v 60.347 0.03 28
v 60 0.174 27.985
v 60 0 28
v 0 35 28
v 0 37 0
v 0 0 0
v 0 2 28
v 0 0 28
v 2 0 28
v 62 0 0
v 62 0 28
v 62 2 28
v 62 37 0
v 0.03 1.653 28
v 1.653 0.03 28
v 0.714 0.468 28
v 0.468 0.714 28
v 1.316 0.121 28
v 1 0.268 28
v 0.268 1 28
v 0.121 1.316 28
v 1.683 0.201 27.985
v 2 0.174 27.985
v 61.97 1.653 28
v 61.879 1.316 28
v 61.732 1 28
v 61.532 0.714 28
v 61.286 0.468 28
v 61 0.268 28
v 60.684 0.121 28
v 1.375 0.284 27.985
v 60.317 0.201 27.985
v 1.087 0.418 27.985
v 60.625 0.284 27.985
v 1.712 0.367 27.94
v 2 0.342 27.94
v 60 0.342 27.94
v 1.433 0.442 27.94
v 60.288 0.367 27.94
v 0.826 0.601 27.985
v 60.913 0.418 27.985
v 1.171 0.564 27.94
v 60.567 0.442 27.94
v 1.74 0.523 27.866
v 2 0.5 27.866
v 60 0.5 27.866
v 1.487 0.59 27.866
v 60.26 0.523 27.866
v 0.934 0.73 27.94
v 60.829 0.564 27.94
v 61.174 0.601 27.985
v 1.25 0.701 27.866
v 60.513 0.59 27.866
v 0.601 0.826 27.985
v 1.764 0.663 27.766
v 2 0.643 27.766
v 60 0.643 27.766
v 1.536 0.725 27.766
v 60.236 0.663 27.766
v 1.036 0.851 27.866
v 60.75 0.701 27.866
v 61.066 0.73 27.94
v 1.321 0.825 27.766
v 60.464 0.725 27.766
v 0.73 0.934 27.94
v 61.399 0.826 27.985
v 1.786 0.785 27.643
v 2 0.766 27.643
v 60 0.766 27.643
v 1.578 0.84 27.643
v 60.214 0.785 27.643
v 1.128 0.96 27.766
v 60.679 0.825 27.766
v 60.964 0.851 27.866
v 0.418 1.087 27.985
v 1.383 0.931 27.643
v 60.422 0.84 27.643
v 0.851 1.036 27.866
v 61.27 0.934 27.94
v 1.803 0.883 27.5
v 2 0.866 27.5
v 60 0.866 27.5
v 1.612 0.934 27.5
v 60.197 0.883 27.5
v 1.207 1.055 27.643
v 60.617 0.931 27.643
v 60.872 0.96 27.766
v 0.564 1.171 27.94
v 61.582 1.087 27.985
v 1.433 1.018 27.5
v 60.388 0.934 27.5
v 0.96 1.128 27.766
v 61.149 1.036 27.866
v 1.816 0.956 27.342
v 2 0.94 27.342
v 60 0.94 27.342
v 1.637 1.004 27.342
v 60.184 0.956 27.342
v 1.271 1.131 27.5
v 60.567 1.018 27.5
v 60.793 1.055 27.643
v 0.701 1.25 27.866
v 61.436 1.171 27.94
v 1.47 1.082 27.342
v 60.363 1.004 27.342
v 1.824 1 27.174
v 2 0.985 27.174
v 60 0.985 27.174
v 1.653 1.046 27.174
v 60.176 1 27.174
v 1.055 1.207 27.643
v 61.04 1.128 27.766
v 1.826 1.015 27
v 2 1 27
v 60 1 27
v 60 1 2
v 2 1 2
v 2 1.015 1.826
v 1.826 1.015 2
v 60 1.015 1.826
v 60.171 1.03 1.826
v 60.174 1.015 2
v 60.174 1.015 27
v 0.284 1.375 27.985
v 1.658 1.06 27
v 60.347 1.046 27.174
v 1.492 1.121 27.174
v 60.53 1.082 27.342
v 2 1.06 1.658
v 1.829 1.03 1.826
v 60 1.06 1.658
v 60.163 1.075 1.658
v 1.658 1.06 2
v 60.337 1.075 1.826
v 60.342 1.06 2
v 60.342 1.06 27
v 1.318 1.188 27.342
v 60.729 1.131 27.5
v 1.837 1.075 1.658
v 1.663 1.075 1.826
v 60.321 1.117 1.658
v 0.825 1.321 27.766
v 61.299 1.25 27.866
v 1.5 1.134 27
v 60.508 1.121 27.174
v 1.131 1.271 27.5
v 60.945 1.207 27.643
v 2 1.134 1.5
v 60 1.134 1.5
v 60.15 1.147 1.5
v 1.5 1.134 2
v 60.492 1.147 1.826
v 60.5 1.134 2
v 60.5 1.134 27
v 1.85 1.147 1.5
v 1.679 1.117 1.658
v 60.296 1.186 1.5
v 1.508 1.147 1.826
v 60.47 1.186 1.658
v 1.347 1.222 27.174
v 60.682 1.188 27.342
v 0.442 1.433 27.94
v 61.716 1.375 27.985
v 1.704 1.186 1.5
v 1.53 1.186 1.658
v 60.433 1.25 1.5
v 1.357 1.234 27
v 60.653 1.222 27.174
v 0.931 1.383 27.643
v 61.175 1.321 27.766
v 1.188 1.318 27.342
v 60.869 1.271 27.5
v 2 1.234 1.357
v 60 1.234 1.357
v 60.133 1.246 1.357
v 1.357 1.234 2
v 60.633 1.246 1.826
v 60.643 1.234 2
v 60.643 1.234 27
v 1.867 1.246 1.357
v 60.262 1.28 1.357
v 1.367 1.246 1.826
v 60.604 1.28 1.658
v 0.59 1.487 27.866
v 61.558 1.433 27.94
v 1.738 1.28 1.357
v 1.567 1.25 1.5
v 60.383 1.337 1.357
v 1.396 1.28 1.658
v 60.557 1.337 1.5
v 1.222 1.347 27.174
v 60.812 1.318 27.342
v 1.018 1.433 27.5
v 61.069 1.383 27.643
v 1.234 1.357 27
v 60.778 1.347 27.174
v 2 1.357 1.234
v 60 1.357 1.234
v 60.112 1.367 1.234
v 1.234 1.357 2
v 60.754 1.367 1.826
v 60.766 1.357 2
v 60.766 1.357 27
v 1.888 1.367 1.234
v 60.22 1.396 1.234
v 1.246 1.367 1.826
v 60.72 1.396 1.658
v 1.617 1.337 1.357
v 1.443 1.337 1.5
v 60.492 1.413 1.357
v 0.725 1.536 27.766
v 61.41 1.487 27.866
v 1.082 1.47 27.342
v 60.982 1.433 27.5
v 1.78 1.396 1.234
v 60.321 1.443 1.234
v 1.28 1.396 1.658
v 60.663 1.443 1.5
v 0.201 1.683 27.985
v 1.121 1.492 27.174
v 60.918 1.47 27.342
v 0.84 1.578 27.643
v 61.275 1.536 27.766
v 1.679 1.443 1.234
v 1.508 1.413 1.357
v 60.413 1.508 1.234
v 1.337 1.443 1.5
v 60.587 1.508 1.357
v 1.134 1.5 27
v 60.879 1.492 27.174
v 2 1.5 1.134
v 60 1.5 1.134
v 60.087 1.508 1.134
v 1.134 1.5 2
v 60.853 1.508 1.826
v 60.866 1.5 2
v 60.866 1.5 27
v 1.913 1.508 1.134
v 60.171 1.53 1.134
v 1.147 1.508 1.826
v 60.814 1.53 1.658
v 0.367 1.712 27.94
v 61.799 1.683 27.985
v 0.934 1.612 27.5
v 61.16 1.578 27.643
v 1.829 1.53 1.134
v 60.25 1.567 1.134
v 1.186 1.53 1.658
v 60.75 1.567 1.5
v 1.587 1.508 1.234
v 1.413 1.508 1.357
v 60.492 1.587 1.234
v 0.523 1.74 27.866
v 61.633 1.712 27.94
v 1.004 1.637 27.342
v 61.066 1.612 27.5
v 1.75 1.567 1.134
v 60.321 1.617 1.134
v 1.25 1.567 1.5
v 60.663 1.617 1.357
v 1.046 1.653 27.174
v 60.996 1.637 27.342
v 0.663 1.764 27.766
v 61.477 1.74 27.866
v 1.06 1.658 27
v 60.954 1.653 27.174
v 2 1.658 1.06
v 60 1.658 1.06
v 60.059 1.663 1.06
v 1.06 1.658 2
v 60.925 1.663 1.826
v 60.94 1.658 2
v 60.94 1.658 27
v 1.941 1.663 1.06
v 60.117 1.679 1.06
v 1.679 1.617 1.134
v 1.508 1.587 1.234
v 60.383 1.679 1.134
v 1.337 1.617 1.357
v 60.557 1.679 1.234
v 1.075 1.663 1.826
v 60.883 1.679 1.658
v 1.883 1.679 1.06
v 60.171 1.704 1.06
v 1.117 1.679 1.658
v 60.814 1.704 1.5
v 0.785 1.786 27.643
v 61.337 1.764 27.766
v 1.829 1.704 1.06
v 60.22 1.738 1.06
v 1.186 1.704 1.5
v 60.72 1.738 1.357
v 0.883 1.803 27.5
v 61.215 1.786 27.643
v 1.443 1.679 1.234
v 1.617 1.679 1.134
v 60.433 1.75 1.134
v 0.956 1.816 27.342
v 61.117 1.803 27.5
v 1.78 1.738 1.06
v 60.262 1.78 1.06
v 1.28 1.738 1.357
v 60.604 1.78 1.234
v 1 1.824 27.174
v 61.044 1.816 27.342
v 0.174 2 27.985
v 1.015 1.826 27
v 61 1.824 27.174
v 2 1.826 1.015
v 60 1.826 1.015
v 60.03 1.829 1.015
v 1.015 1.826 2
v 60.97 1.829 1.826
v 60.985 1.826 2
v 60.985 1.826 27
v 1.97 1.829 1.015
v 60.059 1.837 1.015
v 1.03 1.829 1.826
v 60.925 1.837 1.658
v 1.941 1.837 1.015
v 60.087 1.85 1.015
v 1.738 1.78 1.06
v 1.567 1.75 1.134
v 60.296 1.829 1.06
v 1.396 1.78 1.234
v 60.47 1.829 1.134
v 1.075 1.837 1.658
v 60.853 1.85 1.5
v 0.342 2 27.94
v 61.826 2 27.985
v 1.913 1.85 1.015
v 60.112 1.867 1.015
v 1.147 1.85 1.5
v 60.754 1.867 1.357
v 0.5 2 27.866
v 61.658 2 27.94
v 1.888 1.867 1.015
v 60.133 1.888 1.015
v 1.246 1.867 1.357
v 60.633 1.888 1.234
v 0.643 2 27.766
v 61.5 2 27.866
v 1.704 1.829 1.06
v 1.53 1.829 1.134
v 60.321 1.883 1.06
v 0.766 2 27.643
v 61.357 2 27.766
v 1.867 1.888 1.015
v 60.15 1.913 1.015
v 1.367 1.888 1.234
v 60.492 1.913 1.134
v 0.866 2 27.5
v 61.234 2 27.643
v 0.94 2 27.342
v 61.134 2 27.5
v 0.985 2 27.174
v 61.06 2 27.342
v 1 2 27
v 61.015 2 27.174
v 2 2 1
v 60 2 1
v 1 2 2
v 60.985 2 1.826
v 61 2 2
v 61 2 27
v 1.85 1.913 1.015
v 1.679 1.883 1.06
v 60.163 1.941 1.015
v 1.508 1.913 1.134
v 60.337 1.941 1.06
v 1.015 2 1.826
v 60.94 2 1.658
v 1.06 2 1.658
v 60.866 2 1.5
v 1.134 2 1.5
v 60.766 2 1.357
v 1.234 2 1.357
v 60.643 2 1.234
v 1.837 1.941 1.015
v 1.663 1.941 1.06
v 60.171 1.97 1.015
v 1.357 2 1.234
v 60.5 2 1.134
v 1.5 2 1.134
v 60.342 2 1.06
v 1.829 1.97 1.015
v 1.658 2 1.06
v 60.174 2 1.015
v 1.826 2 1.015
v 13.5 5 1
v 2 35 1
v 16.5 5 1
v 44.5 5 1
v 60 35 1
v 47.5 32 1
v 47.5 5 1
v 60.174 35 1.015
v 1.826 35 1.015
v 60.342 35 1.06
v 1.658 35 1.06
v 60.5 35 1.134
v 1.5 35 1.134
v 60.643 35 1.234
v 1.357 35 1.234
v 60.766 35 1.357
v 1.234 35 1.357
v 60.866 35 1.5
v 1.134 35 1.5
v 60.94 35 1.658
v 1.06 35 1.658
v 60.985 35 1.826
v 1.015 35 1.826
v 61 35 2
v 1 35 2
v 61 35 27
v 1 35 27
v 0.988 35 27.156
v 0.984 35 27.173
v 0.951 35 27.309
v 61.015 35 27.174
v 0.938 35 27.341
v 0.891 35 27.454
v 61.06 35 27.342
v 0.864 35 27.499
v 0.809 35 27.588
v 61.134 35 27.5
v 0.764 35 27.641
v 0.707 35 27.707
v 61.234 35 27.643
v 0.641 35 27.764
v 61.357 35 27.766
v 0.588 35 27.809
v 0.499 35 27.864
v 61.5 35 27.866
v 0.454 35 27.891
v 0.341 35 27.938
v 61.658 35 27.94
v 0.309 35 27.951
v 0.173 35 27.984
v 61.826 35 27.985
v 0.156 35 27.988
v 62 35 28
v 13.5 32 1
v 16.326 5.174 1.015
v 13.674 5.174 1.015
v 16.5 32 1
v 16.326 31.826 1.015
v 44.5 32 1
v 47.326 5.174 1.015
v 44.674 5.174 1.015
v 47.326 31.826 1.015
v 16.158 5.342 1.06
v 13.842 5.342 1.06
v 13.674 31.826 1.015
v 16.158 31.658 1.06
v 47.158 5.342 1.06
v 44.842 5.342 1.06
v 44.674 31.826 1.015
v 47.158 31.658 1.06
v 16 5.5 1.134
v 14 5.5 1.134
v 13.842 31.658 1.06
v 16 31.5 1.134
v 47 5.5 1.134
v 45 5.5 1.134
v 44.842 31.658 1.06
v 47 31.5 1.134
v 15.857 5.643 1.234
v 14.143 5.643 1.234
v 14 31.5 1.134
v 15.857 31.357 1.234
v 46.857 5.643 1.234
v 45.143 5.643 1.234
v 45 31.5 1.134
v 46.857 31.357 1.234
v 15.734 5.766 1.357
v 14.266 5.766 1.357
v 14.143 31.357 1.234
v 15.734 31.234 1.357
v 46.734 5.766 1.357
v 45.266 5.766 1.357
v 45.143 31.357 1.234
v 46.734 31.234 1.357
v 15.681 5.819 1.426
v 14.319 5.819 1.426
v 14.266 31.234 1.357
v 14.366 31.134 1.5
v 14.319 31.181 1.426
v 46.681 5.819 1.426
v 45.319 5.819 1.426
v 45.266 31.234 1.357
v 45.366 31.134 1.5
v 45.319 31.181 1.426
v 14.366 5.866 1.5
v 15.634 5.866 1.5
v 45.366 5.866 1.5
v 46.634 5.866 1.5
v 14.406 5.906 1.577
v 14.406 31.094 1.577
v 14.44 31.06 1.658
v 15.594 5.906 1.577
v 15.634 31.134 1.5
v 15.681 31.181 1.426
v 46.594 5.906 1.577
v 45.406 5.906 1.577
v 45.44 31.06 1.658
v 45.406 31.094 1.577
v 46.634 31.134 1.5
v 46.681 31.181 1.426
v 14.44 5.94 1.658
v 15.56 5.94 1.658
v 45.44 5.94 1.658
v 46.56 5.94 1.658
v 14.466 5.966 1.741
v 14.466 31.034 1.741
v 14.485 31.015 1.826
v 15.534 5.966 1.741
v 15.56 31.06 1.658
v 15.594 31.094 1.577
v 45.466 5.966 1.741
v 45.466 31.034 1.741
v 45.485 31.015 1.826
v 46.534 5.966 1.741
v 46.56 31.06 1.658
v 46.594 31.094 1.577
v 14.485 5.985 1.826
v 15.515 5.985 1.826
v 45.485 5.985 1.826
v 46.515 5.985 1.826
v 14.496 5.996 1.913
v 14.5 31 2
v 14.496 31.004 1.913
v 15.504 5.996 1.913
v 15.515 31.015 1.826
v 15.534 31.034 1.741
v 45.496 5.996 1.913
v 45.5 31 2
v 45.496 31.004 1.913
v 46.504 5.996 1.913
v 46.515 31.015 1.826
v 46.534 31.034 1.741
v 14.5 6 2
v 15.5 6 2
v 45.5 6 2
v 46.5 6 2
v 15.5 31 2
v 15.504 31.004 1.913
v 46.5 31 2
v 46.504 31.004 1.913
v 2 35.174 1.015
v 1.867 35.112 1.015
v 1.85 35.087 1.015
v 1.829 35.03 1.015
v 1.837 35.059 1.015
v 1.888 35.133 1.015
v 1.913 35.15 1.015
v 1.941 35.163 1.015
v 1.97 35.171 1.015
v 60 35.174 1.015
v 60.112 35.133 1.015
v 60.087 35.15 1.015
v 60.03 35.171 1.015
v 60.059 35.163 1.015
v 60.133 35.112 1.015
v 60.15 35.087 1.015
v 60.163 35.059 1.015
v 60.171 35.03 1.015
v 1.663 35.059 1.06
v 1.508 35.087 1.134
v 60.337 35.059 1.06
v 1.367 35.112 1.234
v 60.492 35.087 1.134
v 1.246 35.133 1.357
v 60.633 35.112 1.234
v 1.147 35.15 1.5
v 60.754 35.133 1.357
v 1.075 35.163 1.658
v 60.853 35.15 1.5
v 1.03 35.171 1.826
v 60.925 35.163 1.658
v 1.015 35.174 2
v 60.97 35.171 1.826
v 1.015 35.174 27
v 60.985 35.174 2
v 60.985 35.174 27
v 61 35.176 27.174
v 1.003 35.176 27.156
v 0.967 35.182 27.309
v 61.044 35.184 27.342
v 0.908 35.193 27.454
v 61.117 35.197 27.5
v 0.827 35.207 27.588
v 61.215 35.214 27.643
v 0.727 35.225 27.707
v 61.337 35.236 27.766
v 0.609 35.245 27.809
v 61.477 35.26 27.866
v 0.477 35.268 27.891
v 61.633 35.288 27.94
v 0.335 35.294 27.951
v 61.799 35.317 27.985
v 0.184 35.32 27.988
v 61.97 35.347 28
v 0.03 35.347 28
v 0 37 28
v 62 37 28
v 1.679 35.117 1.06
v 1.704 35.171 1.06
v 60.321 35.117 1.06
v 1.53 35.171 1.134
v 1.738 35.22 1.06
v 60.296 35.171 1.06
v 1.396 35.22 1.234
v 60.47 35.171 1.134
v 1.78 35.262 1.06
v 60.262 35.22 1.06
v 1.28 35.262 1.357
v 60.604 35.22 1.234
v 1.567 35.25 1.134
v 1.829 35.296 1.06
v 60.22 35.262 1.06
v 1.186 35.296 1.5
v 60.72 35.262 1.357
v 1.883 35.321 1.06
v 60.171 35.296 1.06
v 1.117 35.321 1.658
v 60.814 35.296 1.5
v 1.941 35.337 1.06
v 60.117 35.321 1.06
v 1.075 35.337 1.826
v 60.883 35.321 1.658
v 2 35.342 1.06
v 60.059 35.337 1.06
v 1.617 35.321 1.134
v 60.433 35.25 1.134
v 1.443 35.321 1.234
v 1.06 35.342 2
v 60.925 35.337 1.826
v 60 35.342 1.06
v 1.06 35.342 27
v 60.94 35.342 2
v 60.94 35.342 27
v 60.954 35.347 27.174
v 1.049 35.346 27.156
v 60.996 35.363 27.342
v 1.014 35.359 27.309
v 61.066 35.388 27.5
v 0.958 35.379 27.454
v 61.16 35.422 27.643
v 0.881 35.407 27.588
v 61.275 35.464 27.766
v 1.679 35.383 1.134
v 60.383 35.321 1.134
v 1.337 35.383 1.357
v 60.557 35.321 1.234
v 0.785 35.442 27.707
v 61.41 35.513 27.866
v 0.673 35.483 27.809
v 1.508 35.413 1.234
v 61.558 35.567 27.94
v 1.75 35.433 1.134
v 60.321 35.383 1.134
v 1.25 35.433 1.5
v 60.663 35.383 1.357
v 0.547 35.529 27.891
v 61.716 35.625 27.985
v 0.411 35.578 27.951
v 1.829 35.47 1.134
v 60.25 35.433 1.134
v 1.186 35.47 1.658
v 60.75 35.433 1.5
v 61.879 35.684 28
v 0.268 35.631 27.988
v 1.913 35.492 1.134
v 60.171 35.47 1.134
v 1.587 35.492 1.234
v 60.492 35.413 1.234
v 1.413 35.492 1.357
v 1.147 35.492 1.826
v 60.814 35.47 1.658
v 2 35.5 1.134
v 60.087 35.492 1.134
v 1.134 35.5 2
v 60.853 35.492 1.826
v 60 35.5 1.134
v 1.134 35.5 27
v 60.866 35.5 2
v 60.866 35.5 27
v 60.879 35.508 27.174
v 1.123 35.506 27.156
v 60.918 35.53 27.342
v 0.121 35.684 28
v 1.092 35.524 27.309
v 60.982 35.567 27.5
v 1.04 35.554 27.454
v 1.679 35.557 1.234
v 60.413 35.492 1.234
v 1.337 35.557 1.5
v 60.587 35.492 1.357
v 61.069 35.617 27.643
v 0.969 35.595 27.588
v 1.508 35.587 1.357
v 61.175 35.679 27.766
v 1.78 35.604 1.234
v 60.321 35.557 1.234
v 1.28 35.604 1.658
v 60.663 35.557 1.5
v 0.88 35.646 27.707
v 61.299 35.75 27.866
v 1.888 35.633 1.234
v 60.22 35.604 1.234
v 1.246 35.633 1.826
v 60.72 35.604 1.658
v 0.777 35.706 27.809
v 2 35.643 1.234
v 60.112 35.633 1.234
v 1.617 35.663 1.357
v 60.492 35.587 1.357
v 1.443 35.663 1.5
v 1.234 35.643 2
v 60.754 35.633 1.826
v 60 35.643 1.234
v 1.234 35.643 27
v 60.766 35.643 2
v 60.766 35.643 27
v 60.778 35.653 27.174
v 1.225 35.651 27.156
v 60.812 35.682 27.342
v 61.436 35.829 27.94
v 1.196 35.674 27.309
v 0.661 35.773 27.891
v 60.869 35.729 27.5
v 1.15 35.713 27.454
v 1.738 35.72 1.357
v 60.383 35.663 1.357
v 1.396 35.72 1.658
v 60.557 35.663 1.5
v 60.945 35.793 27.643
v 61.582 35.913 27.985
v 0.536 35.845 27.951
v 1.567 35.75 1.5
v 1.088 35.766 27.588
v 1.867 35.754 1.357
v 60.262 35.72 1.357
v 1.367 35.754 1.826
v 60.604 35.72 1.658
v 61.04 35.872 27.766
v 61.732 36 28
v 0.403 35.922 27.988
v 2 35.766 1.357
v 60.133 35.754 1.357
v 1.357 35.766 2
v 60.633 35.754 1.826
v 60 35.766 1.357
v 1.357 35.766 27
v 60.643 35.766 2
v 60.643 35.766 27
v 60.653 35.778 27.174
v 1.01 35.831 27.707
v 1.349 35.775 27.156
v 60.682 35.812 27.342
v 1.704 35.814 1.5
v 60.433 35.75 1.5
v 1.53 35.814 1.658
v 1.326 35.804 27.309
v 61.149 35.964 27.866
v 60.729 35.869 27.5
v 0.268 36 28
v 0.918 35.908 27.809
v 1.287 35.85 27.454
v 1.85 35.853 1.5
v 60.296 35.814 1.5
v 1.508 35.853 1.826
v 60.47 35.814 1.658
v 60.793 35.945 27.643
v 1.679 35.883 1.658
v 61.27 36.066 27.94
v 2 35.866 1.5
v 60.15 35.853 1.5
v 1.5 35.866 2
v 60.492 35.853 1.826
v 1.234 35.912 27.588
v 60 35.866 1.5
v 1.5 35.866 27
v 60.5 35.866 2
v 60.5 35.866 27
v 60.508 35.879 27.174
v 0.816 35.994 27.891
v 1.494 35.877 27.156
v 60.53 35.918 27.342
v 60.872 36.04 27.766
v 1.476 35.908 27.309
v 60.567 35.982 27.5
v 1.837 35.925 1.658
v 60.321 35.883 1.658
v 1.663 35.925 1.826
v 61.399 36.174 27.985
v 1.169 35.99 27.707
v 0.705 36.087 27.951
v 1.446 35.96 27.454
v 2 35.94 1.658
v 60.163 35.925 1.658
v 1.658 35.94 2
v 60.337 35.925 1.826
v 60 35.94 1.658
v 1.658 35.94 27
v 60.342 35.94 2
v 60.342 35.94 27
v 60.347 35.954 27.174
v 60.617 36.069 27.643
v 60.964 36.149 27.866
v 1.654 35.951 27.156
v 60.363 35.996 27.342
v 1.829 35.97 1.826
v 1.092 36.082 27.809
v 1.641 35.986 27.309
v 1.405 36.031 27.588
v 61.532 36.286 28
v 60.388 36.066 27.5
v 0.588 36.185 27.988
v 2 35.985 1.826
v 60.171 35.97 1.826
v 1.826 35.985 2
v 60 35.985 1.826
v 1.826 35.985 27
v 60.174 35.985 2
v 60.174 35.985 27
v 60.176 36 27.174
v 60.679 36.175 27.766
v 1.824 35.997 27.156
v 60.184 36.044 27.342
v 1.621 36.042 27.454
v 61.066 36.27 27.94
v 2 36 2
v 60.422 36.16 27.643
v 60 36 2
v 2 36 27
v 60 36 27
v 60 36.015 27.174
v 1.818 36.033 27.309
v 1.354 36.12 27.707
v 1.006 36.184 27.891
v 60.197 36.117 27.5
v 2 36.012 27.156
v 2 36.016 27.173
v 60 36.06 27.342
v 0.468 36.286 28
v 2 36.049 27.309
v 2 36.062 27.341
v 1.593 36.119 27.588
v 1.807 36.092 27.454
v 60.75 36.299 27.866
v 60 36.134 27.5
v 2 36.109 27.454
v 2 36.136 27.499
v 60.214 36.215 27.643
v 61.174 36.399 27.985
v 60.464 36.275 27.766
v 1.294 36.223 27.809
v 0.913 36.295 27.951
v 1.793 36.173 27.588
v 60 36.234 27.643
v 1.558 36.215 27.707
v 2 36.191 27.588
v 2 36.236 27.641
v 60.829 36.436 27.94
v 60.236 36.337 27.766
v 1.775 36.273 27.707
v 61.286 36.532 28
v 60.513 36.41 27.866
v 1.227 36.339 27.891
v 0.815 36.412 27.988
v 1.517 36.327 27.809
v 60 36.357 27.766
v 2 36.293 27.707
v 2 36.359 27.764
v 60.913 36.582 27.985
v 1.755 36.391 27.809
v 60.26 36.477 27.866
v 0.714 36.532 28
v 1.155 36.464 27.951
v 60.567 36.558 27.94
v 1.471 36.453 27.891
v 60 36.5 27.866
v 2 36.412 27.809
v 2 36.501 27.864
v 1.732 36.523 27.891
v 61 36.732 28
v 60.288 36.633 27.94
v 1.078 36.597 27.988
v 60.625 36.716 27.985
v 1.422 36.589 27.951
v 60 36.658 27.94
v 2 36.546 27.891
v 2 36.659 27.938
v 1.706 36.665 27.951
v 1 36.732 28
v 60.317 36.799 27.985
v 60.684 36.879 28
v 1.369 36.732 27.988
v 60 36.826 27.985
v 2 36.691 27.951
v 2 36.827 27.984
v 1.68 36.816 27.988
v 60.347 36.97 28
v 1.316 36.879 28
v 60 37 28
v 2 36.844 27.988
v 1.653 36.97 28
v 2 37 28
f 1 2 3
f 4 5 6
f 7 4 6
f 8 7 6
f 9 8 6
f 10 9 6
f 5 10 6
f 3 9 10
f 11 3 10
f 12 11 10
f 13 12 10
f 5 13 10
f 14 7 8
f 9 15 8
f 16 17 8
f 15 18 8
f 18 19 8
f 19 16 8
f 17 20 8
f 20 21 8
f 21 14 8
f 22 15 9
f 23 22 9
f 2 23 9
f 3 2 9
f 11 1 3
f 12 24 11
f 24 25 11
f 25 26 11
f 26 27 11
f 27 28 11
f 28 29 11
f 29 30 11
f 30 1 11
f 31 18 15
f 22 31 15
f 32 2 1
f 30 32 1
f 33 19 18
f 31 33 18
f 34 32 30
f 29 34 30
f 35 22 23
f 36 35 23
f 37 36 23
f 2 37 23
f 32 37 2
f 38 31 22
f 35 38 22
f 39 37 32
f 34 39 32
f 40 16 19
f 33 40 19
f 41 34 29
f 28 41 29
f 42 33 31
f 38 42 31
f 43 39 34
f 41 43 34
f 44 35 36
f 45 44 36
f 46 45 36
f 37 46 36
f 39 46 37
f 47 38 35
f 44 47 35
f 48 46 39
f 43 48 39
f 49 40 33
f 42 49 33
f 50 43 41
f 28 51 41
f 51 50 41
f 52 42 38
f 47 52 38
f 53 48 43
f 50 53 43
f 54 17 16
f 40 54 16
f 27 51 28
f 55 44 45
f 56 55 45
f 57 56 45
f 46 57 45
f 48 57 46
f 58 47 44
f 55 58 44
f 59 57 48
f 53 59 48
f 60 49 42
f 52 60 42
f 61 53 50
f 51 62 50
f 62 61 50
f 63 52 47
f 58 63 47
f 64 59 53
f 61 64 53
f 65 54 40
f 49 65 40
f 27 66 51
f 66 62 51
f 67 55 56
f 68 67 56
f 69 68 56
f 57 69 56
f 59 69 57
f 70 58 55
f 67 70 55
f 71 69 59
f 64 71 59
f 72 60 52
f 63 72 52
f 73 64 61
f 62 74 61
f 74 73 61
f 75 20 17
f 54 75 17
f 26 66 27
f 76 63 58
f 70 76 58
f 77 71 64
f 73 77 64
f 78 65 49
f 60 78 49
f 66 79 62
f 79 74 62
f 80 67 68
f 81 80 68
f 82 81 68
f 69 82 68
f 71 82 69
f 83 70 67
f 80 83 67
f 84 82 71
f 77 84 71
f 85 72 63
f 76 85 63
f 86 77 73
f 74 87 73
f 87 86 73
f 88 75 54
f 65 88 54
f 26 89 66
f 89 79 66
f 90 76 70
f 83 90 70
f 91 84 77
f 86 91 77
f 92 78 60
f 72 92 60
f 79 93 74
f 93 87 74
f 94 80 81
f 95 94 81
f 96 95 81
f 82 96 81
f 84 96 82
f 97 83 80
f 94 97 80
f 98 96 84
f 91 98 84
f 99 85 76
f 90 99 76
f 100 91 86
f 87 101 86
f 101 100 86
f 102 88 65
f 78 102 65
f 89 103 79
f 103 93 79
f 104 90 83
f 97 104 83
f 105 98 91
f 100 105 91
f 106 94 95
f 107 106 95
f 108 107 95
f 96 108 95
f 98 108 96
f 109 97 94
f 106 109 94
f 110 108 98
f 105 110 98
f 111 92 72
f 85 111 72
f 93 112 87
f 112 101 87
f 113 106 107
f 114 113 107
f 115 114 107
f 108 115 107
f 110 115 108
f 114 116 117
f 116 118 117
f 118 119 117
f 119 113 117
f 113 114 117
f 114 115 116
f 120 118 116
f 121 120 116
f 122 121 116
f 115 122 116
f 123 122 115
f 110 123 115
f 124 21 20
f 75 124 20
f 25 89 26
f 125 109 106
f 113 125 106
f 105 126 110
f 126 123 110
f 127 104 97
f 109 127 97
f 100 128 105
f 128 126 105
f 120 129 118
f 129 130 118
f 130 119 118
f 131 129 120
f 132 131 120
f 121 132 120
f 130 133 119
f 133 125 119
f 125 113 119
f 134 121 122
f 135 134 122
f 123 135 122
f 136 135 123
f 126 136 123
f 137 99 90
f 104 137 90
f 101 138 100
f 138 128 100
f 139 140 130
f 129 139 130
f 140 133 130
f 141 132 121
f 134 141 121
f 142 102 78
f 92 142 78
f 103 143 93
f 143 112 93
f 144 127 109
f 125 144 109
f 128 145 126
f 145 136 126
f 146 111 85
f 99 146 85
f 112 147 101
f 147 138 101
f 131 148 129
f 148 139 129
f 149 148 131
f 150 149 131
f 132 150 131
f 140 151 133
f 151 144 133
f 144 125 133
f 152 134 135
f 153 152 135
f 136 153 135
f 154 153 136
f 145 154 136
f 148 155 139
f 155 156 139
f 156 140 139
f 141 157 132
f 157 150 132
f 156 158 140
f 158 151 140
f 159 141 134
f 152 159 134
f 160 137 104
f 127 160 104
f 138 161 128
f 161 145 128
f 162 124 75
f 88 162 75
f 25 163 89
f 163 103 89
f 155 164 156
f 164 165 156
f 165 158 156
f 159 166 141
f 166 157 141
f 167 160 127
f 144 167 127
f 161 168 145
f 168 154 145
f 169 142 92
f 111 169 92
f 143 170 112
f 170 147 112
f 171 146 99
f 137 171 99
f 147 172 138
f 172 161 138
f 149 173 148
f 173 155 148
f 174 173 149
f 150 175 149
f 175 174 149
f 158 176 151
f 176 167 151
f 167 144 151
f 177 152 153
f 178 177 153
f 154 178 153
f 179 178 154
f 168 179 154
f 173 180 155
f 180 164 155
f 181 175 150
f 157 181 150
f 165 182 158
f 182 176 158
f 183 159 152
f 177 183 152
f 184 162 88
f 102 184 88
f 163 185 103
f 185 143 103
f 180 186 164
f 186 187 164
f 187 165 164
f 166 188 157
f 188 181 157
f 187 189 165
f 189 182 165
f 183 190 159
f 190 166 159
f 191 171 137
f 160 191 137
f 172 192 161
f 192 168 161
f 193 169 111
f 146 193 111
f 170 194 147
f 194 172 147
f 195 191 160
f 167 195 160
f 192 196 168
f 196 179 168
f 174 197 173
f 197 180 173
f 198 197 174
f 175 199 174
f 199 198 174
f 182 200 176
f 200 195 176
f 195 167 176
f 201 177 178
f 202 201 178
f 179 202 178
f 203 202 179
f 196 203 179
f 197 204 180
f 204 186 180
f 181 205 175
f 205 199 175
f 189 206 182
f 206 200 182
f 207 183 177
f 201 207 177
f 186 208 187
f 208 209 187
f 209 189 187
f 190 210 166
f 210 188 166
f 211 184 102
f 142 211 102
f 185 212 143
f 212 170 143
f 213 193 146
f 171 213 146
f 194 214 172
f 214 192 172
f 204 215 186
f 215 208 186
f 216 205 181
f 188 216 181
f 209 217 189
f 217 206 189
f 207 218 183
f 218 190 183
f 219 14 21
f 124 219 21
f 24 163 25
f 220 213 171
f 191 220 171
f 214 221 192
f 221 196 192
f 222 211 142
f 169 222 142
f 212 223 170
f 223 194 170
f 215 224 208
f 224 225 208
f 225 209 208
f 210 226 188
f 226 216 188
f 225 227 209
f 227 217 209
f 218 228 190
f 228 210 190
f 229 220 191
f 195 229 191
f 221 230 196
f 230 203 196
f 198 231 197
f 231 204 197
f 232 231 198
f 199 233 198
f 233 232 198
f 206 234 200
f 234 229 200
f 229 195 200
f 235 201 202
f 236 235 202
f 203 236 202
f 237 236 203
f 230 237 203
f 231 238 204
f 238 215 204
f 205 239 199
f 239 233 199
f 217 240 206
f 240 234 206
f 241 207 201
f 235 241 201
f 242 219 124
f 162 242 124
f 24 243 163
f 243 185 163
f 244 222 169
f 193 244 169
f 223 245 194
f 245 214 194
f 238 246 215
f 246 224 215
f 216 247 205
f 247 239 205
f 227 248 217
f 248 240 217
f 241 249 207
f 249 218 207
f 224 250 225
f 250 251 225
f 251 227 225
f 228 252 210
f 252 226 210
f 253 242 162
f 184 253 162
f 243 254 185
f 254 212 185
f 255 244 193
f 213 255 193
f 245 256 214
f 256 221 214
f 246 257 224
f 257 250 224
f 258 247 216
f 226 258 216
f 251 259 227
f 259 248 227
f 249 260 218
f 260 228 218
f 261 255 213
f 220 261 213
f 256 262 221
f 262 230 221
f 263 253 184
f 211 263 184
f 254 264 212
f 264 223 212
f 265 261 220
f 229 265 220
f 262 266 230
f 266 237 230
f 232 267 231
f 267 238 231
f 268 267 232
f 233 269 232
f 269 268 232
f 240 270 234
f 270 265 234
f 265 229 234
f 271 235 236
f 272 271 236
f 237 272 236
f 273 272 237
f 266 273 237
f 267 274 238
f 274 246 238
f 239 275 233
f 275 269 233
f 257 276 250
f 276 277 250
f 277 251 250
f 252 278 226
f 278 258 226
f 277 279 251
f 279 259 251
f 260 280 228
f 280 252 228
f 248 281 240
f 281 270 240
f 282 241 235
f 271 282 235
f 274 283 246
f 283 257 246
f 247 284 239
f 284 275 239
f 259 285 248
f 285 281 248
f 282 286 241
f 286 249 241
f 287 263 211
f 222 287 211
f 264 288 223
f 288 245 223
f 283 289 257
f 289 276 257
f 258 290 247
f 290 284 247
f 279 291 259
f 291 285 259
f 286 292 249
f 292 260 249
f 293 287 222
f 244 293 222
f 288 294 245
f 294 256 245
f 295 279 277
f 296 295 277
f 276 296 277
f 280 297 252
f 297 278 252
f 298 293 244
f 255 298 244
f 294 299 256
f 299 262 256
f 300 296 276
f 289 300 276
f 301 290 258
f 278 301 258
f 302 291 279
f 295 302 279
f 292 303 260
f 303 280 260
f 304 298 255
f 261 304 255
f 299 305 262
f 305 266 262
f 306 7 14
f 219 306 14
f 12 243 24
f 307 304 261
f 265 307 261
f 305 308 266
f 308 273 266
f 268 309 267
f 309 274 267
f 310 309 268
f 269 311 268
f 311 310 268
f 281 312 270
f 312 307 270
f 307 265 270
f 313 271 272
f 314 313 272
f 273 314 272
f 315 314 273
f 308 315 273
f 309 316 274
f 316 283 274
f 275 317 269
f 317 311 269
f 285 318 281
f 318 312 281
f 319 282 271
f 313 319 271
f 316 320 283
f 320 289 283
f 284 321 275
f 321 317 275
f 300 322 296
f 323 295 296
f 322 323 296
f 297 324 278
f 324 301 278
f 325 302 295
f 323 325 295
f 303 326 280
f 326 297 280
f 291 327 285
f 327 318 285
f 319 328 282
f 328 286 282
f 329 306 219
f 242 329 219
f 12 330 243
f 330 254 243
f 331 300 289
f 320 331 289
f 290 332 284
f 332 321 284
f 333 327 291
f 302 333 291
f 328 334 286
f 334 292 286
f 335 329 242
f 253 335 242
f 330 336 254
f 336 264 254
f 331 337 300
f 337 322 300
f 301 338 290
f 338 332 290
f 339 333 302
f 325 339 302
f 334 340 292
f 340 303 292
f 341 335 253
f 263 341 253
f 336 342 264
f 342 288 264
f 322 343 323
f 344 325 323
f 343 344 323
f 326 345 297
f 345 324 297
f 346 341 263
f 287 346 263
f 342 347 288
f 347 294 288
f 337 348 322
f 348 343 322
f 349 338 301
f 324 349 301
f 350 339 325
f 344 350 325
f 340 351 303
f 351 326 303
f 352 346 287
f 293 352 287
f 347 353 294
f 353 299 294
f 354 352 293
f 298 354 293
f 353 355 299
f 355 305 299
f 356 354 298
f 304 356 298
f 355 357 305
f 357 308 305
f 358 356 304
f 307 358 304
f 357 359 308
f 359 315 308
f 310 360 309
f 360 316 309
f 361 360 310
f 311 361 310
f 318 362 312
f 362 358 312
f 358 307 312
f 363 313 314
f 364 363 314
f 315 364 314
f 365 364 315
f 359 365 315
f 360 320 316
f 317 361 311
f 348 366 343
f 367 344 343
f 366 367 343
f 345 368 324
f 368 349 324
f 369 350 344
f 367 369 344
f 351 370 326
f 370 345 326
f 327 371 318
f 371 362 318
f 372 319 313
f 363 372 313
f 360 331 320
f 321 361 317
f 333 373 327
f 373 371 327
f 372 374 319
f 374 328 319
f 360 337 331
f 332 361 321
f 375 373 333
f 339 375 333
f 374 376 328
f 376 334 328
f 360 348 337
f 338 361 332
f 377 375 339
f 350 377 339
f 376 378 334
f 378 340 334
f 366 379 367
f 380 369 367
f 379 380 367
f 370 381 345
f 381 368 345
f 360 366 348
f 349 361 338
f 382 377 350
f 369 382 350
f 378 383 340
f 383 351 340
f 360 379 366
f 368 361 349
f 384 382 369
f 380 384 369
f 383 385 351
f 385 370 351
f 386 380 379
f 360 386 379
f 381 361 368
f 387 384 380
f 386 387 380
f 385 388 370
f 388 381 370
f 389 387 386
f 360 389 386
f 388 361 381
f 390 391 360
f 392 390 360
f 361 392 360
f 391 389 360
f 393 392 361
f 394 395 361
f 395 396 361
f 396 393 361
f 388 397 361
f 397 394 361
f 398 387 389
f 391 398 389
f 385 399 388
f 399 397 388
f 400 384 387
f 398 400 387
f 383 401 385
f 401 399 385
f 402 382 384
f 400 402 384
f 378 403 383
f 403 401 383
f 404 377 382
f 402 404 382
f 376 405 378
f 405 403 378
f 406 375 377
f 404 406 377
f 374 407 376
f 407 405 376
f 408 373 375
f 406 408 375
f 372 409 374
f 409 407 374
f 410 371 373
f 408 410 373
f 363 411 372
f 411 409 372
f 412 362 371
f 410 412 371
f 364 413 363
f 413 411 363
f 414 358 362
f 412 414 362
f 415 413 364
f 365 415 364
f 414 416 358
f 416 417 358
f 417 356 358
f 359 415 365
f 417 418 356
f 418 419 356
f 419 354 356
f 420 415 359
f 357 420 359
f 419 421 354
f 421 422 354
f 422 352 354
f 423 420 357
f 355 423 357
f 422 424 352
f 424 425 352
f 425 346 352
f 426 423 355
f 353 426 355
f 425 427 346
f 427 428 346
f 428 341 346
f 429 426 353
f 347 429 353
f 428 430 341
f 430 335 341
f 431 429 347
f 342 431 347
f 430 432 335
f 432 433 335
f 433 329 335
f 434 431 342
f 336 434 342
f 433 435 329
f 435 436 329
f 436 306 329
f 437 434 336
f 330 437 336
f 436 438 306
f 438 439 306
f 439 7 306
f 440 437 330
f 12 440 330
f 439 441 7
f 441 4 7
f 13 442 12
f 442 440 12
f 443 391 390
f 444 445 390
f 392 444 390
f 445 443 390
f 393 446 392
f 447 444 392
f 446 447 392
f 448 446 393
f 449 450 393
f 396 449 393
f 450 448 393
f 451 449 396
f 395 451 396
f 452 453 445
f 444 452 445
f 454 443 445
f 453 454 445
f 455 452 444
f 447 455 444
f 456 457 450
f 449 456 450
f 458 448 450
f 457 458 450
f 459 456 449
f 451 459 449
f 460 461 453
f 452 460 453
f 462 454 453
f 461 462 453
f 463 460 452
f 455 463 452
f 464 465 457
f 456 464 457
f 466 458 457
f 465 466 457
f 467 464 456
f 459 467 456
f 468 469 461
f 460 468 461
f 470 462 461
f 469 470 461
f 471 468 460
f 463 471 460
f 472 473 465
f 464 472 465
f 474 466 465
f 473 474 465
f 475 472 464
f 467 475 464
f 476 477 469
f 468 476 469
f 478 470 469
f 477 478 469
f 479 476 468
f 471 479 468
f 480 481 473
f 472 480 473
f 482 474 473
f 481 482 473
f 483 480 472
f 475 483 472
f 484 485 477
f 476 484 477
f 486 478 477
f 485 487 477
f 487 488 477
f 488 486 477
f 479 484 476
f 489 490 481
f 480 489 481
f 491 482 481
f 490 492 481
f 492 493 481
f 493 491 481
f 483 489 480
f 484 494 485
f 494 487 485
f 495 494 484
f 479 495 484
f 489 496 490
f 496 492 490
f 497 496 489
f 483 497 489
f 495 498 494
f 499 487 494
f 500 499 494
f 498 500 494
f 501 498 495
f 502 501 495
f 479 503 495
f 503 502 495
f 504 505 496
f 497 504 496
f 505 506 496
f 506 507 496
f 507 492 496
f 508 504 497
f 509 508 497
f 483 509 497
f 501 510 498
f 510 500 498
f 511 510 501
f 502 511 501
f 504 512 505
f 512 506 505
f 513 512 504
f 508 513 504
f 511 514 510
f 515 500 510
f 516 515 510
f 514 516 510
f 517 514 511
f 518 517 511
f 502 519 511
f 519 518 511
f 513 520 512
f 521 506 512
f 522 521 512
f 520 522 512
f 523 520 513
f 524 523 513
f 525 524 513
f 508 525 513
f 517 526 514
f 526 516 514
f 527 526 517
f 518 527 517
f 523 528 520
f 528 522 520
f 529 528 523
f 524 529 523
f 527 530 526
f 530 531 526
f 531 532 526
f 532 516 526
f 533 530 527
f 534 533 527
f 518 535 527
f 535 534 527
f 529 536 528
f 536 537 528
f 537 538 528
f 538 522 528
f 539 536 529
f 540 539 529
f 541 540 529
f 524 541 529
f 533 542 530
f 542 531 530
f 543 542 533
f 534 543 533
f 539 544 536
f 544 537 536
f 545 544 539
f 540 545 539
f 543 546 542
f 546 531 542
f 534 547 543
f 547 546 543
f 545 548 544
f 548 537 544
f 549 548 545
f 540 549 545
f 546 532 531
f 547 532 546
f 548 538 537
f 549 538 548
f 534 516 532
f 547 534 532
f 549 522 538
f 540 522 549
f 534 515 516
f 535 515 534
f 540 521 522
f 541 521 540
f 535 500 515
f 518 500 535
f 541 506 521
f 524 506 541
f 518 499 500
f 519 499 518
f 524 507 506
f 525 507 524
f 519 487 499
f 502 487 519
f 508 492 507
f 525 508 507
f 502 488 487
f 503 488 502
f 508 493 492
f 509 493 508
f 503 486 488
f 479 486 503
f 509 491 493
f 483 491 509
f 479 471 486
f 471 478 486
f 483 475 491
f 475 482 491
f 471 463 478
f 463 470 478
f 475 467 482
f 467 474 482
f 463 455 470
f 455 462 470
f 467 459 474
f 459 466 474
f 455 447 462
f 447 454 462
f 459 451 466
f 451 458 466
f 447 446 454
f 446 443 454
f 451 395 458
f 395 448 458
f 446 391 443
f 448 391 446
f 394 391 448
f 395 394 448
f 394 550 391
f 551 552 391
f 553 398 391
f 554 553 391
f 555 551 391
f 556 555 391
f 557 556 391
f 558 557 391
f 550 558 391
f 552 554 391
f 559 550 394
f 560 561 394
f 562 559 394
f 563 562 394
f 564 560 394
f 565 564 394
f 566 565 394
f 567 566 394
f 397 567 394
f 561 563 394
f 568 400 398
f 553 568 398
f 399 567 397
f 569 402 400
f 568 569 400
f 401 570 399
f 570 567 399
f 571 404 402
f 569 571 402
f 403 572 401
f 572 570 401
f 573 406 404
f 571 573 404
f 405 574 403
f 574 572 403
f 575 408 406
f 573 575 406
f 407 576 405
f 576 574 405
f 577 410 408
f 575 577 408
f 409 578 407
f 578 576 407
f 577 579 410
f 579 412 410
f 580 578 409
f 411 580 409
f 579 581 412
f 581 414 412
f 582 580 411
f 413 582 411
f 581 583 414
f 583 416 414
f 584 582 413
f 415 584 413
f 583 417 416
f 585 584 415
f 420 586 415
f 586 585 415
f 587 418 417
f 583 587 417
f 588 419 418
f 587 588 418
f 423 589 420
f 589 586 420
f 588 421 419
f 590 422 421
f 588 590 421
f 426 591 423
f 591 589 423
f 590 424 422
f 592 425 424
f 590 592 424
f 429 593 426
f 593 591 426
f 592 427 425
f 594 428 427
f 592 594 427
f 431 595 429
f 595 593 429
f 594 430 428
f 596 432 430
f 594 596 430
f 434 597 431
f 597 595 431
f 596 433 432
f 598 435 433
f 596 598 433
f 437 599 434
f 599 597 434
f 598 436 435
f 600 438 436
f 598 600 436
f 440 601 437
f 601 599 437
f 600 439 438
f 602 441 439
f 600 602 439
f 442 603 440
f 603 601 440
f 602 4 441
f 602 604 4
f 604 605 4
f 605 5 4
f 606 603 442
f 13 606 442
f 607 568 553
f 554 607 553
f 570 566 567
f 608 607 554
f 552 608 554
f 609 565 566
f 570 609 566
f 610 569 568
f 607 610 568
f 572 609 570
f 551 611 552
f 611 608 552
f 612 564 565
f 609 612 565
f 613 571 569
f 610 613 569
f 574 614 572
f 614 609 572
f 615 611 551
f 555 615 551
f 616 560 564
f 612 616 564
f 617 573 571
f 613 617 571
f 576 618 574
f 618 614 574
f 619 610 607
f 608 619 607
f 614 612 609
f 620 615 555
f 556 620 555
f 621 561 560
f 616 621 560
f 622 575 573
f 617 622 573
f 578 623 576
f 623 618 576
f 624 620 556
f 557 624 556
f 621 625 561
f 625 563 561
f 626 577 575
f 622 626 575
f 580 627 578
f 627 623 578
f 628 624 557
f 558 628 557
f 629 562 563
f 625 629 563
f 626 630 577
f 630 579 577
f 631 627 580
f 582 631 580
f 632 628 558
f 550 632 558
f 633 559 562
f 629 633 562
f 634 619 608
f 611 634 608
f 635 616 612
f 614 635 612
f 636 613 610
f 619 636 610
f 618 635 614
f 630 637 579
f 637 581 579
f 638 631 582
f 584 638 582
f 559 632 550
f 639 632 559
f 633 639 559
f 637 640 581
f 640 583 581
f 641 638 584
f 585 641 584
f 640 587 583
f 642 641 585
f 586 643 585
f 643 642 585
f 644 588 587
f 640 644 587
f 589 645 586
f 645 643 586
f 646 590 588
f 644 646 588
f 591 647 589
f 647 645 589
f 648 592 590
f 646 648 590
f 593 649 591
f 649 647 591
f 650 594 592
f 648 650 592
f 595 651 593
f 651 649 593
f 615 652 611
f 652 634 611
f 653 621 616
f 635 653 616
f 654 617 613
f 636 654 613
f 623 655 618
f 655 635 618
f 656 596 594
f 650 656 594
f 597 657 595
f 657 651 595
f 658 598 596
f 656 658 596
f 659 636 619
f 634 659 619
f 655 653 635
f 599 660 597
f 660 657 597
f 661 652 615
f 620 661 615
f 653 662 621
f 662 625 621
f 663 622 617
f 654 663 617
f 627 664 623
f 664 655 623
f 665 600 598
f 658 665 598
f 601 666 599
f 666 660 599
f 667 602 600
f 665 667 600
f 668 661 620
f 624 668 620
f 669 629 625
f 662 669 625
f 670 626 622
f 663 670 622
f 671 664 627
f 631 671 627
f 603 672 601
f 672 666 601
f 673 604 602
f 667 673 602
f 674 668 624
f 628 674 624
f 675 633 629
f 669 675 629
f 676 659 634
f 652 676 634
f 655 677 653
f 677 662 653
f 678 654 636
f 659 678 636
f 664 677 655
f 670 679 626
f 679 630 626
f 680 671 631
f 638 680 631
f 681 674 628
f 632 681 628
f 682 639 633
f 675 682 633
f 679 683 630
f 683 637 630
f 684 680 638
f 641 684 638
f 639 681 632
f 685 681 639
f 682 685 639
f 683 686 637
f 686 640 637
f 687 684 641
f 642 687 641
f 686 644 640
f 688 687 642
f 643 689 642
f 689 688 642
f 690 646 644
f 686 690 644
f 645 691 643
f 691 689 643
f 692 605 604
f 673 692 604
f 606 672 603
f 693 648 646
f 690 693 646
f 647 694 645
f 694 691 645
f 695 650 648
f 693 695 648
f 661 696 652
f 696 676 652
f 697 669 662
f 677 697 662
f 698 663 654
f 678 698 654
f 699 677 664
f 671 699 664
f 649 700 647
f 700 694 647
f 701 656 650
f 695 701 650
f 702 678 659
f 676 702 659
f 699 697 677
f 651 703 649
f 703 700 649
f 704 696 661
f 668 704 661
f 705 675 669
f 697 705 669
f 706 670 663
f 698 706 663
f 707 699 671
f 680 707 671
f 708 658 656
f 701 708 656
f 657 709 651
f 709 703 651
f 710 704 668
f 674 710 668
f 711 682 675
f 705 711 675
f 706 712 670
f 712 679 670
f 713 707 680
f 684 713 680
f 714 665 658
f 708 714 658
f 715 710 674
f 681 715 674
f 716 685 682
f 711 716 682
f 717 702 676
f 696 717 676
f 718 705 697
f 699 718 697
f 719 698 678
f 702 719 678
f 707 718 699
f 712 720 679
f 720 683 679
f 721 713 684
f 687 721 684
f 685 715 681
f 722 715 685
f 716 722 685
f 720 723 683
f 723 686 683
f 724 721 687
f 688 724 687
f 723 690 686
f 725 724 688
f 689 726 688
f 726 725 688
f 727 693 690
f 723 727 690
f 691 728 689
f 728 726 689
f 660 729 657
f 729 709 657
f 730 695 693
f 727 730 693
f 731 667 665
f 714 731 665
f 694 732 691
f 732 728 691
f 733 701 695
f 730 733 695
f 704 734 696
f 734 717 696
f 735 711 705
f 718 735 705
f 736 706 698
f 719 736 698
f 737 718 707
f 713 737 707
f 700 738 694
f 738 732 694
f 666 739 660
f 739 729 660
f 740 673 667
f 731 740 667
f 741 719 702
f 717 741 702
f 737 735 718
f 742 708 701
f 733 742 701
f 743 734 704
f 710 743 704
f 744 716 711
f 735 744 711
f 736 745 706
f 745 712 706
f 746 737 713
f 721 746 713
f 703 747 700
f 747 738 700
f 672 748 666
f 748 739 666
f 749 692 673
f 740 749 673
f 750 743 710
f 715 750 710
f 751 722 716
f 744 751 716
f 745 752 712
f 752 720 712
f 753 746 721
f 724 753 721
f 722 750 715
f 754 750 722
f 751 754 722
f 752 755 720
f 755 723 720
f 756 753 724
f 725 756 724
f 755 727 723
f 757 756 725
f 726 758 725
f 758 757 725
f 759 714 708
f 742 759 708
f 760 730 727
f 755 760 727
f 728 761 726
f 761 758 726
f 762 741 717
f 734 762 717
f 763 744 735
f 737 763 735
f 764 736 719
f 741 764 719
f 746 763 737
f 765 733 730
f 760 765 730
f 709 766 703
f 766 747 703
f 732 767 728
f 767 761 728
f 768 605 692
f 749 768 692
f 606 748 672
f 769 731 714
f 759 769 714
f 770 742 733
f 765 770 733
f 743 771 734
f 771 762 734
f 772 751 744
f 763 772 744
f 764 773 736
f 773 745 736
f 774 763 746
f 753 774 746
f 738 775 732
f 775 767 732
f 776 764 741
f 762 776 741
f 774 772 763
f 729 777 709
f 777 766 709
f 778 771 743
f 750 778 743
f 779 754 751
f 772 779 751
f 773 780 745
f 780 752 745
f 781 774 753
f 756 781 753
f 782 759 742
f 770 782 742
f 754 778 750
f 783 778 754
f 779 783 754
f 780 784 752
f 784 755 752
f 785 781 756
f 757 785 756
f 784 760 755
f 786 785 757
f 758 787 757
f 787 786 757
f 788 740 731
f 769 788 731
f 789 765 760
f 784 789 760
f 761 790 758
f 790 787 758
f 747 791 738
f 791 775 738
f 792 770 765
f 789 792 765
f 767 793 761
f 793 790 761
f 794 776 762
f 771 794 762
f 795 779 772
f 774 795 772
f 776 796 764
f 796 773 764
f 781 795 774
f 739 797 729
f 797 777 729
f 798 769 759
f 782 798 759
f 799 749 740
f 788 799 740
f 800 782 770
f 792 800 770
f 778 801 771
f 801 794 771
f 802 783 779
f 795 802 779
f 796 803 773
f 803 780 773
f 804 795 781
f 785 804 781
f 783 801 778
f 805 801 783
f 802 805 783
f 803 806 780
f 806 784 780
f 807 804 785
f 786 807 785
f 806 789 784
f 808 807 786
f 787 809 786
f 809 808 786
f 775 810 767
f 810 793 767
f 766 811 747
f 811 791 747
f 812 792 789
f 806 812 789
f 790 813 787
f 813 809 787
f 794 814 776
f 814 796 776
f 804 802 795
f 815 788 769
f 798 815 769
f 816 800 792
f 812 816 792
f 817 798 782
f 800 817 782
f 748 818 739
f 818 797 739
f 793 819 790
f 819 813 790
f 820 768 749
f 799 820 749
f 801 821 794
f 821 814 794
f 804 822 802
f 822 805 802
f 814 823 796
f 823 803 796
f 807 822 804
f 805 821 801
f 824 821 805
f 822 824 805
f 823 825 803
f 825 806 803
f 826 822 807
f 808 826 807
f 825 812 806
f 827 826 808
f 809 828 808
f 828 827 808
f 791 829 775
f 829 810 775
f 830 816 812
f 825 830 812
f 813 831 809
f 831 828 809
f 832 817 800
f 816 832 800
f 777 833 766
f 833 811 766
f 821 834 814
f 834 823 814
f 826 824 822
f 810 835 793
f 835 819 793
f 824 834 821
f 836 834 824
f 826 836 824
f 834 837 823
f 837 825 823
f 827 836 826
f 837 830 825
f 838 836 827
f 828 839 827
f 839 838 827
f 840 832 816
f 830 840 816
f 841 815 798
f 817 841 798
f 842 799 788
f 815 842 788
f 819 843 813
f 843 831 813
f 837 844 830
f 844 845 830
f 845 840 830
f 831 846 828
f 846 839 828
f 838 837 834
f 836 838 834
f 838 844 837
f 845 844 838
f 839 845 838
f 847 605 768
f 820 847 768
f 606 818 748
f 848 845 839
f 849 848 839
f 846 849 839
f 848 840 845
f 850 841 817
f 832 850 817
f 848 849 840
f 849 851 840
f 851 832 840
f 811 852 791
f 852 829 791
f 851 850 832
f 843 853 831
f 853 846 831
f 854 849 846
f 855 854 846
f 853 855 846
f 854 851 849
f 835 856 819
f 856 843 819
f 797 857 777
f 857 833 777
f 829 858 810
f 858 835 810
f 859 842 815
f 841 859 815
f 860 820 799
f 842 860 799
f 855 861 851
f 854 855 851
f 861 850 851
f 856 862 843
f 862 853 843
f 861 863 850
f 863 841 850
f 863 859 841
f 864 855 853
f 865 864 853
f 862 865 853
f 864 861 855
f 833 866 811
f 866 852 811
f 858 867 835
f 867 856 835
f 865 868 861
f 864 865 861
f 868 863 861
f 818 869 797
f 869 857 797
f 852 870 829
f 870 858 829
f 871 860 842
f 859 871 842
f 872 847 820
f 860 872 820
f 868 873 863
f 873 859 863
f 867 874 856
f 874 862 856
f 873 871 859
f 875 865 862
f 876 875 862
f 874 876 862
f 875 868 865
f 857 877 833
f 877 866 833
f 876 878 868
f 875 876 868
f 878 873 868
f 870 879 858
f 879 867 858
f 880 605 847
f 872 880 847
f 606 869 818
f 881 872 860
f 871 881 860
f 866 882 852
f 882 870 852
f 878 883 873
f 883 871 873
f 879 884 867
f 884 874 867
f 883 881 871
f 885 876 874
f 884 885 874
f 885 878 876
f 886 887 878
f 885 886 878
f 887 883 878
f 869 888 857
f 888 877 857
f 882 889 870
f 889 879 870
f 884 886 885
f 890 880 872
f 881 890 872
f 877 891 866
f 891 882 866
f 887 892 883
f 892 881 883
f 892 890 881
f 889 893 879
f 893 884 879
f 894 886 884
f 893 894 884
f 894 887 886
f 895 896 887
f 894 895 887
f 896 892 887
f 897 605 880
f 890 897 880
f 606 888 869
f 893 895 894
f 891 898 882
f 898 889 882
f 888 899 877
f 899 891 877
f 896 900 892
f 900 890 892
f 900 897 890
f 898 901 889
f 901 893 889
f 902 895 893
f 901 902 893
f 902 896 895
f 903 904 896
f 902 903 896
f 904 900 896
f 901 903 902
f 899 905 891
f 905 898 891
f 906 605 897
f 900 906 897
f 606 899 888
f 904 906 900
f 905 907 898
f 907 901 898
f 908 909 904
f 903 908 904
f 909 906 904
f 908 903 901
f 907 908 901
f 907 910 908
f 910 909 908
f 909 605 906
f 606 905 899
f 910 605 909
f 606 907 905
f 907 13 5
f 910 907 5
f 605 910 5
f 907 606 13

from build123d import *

# Parameters (mm, degrees)
ESQUISSE1_W        = 62
ESQUISSE1_H        = 37
BOSS_EXTRU_1_DEPTH = 28
COQUE1_T           = -1
CONG_1_R           = 1
ESQUISSE2_W        = 1
ESQUISSE2_H        = 25
BOSS_EXTRU_2_DEPTH = 1
CONG_2_R           = 1


with BuildPart() as part:
    # Esquisse1 → Boss.-Extru.1 (new body)
    with BuildSketch(Plane.XY):
        with Locations((31, 18.5)):
            Rectangle(ESQUISSE1_W, ESQUISSE1_H)
    extrude(amount=BOSS_EXTRU_1_DEPTH)

    # Coque1
    coque1_openings = [part.faces().sort_by_distance(p)[0] for p in [
        (31, 18.5, 28),
    ]]
    offset(amount=COQUE1_T, openings=coque1_openings, kind=Kind.INTERSECTION)

    # Congé1
    cong_1_edges = [part.edges().sort_by_distance(p)[0] for p in [
        (1, 18.5, 1),
        (1, 36, 14.5),
        (31, 1, 1),
        (1, 1, 14.5),
        (61, 18.5, 1),
        (61, 1, 14.5),
        (31, 36, 1),
        (61, 36, 14.5),
        (1, 18.5, 28),
        (31, 1, 28),
        (61, 18.5, 28),
        (31, 36, 28),
    ]]
    fillet(cong_1_edges, radius=CONG_1_R - 0.0001)  # a hair under: the kernel refuses the full size

    # Esquisse2 → Boss.-Extru.2 (add)
    with BuildSketch(Plane.XY.offset(1)):
        with Locations((15, 18.5)):
            Rectangle(ESQUISSE2_W, ESQUISSE2_H)
        with Locations((46, 18.5)):
            Rectangle(ESQUISSE2_W, ESQUISSE2_H)
    extrude(amount=BOSS_EXTRU_2_DEPTH)

    # Congé2
    cong_2_edges = [part.edges().sort_by_distance(p)[0] for p in [
        (46, 31, 1),
        (15, 31, 1),
        (46, 6, 1),
        (15, 6, 1),
        (46.5, 18.5, 1),
        (15.5, 18.5, 1),
        (45.5, 18.5, 1),
        (14.5, 18.5, 1),
    ]]
    fillet(cong_2_edges, radius=CONG_2_R - 0.0001)  # a hair under: the kernel refuses the full size


solid = part.part
